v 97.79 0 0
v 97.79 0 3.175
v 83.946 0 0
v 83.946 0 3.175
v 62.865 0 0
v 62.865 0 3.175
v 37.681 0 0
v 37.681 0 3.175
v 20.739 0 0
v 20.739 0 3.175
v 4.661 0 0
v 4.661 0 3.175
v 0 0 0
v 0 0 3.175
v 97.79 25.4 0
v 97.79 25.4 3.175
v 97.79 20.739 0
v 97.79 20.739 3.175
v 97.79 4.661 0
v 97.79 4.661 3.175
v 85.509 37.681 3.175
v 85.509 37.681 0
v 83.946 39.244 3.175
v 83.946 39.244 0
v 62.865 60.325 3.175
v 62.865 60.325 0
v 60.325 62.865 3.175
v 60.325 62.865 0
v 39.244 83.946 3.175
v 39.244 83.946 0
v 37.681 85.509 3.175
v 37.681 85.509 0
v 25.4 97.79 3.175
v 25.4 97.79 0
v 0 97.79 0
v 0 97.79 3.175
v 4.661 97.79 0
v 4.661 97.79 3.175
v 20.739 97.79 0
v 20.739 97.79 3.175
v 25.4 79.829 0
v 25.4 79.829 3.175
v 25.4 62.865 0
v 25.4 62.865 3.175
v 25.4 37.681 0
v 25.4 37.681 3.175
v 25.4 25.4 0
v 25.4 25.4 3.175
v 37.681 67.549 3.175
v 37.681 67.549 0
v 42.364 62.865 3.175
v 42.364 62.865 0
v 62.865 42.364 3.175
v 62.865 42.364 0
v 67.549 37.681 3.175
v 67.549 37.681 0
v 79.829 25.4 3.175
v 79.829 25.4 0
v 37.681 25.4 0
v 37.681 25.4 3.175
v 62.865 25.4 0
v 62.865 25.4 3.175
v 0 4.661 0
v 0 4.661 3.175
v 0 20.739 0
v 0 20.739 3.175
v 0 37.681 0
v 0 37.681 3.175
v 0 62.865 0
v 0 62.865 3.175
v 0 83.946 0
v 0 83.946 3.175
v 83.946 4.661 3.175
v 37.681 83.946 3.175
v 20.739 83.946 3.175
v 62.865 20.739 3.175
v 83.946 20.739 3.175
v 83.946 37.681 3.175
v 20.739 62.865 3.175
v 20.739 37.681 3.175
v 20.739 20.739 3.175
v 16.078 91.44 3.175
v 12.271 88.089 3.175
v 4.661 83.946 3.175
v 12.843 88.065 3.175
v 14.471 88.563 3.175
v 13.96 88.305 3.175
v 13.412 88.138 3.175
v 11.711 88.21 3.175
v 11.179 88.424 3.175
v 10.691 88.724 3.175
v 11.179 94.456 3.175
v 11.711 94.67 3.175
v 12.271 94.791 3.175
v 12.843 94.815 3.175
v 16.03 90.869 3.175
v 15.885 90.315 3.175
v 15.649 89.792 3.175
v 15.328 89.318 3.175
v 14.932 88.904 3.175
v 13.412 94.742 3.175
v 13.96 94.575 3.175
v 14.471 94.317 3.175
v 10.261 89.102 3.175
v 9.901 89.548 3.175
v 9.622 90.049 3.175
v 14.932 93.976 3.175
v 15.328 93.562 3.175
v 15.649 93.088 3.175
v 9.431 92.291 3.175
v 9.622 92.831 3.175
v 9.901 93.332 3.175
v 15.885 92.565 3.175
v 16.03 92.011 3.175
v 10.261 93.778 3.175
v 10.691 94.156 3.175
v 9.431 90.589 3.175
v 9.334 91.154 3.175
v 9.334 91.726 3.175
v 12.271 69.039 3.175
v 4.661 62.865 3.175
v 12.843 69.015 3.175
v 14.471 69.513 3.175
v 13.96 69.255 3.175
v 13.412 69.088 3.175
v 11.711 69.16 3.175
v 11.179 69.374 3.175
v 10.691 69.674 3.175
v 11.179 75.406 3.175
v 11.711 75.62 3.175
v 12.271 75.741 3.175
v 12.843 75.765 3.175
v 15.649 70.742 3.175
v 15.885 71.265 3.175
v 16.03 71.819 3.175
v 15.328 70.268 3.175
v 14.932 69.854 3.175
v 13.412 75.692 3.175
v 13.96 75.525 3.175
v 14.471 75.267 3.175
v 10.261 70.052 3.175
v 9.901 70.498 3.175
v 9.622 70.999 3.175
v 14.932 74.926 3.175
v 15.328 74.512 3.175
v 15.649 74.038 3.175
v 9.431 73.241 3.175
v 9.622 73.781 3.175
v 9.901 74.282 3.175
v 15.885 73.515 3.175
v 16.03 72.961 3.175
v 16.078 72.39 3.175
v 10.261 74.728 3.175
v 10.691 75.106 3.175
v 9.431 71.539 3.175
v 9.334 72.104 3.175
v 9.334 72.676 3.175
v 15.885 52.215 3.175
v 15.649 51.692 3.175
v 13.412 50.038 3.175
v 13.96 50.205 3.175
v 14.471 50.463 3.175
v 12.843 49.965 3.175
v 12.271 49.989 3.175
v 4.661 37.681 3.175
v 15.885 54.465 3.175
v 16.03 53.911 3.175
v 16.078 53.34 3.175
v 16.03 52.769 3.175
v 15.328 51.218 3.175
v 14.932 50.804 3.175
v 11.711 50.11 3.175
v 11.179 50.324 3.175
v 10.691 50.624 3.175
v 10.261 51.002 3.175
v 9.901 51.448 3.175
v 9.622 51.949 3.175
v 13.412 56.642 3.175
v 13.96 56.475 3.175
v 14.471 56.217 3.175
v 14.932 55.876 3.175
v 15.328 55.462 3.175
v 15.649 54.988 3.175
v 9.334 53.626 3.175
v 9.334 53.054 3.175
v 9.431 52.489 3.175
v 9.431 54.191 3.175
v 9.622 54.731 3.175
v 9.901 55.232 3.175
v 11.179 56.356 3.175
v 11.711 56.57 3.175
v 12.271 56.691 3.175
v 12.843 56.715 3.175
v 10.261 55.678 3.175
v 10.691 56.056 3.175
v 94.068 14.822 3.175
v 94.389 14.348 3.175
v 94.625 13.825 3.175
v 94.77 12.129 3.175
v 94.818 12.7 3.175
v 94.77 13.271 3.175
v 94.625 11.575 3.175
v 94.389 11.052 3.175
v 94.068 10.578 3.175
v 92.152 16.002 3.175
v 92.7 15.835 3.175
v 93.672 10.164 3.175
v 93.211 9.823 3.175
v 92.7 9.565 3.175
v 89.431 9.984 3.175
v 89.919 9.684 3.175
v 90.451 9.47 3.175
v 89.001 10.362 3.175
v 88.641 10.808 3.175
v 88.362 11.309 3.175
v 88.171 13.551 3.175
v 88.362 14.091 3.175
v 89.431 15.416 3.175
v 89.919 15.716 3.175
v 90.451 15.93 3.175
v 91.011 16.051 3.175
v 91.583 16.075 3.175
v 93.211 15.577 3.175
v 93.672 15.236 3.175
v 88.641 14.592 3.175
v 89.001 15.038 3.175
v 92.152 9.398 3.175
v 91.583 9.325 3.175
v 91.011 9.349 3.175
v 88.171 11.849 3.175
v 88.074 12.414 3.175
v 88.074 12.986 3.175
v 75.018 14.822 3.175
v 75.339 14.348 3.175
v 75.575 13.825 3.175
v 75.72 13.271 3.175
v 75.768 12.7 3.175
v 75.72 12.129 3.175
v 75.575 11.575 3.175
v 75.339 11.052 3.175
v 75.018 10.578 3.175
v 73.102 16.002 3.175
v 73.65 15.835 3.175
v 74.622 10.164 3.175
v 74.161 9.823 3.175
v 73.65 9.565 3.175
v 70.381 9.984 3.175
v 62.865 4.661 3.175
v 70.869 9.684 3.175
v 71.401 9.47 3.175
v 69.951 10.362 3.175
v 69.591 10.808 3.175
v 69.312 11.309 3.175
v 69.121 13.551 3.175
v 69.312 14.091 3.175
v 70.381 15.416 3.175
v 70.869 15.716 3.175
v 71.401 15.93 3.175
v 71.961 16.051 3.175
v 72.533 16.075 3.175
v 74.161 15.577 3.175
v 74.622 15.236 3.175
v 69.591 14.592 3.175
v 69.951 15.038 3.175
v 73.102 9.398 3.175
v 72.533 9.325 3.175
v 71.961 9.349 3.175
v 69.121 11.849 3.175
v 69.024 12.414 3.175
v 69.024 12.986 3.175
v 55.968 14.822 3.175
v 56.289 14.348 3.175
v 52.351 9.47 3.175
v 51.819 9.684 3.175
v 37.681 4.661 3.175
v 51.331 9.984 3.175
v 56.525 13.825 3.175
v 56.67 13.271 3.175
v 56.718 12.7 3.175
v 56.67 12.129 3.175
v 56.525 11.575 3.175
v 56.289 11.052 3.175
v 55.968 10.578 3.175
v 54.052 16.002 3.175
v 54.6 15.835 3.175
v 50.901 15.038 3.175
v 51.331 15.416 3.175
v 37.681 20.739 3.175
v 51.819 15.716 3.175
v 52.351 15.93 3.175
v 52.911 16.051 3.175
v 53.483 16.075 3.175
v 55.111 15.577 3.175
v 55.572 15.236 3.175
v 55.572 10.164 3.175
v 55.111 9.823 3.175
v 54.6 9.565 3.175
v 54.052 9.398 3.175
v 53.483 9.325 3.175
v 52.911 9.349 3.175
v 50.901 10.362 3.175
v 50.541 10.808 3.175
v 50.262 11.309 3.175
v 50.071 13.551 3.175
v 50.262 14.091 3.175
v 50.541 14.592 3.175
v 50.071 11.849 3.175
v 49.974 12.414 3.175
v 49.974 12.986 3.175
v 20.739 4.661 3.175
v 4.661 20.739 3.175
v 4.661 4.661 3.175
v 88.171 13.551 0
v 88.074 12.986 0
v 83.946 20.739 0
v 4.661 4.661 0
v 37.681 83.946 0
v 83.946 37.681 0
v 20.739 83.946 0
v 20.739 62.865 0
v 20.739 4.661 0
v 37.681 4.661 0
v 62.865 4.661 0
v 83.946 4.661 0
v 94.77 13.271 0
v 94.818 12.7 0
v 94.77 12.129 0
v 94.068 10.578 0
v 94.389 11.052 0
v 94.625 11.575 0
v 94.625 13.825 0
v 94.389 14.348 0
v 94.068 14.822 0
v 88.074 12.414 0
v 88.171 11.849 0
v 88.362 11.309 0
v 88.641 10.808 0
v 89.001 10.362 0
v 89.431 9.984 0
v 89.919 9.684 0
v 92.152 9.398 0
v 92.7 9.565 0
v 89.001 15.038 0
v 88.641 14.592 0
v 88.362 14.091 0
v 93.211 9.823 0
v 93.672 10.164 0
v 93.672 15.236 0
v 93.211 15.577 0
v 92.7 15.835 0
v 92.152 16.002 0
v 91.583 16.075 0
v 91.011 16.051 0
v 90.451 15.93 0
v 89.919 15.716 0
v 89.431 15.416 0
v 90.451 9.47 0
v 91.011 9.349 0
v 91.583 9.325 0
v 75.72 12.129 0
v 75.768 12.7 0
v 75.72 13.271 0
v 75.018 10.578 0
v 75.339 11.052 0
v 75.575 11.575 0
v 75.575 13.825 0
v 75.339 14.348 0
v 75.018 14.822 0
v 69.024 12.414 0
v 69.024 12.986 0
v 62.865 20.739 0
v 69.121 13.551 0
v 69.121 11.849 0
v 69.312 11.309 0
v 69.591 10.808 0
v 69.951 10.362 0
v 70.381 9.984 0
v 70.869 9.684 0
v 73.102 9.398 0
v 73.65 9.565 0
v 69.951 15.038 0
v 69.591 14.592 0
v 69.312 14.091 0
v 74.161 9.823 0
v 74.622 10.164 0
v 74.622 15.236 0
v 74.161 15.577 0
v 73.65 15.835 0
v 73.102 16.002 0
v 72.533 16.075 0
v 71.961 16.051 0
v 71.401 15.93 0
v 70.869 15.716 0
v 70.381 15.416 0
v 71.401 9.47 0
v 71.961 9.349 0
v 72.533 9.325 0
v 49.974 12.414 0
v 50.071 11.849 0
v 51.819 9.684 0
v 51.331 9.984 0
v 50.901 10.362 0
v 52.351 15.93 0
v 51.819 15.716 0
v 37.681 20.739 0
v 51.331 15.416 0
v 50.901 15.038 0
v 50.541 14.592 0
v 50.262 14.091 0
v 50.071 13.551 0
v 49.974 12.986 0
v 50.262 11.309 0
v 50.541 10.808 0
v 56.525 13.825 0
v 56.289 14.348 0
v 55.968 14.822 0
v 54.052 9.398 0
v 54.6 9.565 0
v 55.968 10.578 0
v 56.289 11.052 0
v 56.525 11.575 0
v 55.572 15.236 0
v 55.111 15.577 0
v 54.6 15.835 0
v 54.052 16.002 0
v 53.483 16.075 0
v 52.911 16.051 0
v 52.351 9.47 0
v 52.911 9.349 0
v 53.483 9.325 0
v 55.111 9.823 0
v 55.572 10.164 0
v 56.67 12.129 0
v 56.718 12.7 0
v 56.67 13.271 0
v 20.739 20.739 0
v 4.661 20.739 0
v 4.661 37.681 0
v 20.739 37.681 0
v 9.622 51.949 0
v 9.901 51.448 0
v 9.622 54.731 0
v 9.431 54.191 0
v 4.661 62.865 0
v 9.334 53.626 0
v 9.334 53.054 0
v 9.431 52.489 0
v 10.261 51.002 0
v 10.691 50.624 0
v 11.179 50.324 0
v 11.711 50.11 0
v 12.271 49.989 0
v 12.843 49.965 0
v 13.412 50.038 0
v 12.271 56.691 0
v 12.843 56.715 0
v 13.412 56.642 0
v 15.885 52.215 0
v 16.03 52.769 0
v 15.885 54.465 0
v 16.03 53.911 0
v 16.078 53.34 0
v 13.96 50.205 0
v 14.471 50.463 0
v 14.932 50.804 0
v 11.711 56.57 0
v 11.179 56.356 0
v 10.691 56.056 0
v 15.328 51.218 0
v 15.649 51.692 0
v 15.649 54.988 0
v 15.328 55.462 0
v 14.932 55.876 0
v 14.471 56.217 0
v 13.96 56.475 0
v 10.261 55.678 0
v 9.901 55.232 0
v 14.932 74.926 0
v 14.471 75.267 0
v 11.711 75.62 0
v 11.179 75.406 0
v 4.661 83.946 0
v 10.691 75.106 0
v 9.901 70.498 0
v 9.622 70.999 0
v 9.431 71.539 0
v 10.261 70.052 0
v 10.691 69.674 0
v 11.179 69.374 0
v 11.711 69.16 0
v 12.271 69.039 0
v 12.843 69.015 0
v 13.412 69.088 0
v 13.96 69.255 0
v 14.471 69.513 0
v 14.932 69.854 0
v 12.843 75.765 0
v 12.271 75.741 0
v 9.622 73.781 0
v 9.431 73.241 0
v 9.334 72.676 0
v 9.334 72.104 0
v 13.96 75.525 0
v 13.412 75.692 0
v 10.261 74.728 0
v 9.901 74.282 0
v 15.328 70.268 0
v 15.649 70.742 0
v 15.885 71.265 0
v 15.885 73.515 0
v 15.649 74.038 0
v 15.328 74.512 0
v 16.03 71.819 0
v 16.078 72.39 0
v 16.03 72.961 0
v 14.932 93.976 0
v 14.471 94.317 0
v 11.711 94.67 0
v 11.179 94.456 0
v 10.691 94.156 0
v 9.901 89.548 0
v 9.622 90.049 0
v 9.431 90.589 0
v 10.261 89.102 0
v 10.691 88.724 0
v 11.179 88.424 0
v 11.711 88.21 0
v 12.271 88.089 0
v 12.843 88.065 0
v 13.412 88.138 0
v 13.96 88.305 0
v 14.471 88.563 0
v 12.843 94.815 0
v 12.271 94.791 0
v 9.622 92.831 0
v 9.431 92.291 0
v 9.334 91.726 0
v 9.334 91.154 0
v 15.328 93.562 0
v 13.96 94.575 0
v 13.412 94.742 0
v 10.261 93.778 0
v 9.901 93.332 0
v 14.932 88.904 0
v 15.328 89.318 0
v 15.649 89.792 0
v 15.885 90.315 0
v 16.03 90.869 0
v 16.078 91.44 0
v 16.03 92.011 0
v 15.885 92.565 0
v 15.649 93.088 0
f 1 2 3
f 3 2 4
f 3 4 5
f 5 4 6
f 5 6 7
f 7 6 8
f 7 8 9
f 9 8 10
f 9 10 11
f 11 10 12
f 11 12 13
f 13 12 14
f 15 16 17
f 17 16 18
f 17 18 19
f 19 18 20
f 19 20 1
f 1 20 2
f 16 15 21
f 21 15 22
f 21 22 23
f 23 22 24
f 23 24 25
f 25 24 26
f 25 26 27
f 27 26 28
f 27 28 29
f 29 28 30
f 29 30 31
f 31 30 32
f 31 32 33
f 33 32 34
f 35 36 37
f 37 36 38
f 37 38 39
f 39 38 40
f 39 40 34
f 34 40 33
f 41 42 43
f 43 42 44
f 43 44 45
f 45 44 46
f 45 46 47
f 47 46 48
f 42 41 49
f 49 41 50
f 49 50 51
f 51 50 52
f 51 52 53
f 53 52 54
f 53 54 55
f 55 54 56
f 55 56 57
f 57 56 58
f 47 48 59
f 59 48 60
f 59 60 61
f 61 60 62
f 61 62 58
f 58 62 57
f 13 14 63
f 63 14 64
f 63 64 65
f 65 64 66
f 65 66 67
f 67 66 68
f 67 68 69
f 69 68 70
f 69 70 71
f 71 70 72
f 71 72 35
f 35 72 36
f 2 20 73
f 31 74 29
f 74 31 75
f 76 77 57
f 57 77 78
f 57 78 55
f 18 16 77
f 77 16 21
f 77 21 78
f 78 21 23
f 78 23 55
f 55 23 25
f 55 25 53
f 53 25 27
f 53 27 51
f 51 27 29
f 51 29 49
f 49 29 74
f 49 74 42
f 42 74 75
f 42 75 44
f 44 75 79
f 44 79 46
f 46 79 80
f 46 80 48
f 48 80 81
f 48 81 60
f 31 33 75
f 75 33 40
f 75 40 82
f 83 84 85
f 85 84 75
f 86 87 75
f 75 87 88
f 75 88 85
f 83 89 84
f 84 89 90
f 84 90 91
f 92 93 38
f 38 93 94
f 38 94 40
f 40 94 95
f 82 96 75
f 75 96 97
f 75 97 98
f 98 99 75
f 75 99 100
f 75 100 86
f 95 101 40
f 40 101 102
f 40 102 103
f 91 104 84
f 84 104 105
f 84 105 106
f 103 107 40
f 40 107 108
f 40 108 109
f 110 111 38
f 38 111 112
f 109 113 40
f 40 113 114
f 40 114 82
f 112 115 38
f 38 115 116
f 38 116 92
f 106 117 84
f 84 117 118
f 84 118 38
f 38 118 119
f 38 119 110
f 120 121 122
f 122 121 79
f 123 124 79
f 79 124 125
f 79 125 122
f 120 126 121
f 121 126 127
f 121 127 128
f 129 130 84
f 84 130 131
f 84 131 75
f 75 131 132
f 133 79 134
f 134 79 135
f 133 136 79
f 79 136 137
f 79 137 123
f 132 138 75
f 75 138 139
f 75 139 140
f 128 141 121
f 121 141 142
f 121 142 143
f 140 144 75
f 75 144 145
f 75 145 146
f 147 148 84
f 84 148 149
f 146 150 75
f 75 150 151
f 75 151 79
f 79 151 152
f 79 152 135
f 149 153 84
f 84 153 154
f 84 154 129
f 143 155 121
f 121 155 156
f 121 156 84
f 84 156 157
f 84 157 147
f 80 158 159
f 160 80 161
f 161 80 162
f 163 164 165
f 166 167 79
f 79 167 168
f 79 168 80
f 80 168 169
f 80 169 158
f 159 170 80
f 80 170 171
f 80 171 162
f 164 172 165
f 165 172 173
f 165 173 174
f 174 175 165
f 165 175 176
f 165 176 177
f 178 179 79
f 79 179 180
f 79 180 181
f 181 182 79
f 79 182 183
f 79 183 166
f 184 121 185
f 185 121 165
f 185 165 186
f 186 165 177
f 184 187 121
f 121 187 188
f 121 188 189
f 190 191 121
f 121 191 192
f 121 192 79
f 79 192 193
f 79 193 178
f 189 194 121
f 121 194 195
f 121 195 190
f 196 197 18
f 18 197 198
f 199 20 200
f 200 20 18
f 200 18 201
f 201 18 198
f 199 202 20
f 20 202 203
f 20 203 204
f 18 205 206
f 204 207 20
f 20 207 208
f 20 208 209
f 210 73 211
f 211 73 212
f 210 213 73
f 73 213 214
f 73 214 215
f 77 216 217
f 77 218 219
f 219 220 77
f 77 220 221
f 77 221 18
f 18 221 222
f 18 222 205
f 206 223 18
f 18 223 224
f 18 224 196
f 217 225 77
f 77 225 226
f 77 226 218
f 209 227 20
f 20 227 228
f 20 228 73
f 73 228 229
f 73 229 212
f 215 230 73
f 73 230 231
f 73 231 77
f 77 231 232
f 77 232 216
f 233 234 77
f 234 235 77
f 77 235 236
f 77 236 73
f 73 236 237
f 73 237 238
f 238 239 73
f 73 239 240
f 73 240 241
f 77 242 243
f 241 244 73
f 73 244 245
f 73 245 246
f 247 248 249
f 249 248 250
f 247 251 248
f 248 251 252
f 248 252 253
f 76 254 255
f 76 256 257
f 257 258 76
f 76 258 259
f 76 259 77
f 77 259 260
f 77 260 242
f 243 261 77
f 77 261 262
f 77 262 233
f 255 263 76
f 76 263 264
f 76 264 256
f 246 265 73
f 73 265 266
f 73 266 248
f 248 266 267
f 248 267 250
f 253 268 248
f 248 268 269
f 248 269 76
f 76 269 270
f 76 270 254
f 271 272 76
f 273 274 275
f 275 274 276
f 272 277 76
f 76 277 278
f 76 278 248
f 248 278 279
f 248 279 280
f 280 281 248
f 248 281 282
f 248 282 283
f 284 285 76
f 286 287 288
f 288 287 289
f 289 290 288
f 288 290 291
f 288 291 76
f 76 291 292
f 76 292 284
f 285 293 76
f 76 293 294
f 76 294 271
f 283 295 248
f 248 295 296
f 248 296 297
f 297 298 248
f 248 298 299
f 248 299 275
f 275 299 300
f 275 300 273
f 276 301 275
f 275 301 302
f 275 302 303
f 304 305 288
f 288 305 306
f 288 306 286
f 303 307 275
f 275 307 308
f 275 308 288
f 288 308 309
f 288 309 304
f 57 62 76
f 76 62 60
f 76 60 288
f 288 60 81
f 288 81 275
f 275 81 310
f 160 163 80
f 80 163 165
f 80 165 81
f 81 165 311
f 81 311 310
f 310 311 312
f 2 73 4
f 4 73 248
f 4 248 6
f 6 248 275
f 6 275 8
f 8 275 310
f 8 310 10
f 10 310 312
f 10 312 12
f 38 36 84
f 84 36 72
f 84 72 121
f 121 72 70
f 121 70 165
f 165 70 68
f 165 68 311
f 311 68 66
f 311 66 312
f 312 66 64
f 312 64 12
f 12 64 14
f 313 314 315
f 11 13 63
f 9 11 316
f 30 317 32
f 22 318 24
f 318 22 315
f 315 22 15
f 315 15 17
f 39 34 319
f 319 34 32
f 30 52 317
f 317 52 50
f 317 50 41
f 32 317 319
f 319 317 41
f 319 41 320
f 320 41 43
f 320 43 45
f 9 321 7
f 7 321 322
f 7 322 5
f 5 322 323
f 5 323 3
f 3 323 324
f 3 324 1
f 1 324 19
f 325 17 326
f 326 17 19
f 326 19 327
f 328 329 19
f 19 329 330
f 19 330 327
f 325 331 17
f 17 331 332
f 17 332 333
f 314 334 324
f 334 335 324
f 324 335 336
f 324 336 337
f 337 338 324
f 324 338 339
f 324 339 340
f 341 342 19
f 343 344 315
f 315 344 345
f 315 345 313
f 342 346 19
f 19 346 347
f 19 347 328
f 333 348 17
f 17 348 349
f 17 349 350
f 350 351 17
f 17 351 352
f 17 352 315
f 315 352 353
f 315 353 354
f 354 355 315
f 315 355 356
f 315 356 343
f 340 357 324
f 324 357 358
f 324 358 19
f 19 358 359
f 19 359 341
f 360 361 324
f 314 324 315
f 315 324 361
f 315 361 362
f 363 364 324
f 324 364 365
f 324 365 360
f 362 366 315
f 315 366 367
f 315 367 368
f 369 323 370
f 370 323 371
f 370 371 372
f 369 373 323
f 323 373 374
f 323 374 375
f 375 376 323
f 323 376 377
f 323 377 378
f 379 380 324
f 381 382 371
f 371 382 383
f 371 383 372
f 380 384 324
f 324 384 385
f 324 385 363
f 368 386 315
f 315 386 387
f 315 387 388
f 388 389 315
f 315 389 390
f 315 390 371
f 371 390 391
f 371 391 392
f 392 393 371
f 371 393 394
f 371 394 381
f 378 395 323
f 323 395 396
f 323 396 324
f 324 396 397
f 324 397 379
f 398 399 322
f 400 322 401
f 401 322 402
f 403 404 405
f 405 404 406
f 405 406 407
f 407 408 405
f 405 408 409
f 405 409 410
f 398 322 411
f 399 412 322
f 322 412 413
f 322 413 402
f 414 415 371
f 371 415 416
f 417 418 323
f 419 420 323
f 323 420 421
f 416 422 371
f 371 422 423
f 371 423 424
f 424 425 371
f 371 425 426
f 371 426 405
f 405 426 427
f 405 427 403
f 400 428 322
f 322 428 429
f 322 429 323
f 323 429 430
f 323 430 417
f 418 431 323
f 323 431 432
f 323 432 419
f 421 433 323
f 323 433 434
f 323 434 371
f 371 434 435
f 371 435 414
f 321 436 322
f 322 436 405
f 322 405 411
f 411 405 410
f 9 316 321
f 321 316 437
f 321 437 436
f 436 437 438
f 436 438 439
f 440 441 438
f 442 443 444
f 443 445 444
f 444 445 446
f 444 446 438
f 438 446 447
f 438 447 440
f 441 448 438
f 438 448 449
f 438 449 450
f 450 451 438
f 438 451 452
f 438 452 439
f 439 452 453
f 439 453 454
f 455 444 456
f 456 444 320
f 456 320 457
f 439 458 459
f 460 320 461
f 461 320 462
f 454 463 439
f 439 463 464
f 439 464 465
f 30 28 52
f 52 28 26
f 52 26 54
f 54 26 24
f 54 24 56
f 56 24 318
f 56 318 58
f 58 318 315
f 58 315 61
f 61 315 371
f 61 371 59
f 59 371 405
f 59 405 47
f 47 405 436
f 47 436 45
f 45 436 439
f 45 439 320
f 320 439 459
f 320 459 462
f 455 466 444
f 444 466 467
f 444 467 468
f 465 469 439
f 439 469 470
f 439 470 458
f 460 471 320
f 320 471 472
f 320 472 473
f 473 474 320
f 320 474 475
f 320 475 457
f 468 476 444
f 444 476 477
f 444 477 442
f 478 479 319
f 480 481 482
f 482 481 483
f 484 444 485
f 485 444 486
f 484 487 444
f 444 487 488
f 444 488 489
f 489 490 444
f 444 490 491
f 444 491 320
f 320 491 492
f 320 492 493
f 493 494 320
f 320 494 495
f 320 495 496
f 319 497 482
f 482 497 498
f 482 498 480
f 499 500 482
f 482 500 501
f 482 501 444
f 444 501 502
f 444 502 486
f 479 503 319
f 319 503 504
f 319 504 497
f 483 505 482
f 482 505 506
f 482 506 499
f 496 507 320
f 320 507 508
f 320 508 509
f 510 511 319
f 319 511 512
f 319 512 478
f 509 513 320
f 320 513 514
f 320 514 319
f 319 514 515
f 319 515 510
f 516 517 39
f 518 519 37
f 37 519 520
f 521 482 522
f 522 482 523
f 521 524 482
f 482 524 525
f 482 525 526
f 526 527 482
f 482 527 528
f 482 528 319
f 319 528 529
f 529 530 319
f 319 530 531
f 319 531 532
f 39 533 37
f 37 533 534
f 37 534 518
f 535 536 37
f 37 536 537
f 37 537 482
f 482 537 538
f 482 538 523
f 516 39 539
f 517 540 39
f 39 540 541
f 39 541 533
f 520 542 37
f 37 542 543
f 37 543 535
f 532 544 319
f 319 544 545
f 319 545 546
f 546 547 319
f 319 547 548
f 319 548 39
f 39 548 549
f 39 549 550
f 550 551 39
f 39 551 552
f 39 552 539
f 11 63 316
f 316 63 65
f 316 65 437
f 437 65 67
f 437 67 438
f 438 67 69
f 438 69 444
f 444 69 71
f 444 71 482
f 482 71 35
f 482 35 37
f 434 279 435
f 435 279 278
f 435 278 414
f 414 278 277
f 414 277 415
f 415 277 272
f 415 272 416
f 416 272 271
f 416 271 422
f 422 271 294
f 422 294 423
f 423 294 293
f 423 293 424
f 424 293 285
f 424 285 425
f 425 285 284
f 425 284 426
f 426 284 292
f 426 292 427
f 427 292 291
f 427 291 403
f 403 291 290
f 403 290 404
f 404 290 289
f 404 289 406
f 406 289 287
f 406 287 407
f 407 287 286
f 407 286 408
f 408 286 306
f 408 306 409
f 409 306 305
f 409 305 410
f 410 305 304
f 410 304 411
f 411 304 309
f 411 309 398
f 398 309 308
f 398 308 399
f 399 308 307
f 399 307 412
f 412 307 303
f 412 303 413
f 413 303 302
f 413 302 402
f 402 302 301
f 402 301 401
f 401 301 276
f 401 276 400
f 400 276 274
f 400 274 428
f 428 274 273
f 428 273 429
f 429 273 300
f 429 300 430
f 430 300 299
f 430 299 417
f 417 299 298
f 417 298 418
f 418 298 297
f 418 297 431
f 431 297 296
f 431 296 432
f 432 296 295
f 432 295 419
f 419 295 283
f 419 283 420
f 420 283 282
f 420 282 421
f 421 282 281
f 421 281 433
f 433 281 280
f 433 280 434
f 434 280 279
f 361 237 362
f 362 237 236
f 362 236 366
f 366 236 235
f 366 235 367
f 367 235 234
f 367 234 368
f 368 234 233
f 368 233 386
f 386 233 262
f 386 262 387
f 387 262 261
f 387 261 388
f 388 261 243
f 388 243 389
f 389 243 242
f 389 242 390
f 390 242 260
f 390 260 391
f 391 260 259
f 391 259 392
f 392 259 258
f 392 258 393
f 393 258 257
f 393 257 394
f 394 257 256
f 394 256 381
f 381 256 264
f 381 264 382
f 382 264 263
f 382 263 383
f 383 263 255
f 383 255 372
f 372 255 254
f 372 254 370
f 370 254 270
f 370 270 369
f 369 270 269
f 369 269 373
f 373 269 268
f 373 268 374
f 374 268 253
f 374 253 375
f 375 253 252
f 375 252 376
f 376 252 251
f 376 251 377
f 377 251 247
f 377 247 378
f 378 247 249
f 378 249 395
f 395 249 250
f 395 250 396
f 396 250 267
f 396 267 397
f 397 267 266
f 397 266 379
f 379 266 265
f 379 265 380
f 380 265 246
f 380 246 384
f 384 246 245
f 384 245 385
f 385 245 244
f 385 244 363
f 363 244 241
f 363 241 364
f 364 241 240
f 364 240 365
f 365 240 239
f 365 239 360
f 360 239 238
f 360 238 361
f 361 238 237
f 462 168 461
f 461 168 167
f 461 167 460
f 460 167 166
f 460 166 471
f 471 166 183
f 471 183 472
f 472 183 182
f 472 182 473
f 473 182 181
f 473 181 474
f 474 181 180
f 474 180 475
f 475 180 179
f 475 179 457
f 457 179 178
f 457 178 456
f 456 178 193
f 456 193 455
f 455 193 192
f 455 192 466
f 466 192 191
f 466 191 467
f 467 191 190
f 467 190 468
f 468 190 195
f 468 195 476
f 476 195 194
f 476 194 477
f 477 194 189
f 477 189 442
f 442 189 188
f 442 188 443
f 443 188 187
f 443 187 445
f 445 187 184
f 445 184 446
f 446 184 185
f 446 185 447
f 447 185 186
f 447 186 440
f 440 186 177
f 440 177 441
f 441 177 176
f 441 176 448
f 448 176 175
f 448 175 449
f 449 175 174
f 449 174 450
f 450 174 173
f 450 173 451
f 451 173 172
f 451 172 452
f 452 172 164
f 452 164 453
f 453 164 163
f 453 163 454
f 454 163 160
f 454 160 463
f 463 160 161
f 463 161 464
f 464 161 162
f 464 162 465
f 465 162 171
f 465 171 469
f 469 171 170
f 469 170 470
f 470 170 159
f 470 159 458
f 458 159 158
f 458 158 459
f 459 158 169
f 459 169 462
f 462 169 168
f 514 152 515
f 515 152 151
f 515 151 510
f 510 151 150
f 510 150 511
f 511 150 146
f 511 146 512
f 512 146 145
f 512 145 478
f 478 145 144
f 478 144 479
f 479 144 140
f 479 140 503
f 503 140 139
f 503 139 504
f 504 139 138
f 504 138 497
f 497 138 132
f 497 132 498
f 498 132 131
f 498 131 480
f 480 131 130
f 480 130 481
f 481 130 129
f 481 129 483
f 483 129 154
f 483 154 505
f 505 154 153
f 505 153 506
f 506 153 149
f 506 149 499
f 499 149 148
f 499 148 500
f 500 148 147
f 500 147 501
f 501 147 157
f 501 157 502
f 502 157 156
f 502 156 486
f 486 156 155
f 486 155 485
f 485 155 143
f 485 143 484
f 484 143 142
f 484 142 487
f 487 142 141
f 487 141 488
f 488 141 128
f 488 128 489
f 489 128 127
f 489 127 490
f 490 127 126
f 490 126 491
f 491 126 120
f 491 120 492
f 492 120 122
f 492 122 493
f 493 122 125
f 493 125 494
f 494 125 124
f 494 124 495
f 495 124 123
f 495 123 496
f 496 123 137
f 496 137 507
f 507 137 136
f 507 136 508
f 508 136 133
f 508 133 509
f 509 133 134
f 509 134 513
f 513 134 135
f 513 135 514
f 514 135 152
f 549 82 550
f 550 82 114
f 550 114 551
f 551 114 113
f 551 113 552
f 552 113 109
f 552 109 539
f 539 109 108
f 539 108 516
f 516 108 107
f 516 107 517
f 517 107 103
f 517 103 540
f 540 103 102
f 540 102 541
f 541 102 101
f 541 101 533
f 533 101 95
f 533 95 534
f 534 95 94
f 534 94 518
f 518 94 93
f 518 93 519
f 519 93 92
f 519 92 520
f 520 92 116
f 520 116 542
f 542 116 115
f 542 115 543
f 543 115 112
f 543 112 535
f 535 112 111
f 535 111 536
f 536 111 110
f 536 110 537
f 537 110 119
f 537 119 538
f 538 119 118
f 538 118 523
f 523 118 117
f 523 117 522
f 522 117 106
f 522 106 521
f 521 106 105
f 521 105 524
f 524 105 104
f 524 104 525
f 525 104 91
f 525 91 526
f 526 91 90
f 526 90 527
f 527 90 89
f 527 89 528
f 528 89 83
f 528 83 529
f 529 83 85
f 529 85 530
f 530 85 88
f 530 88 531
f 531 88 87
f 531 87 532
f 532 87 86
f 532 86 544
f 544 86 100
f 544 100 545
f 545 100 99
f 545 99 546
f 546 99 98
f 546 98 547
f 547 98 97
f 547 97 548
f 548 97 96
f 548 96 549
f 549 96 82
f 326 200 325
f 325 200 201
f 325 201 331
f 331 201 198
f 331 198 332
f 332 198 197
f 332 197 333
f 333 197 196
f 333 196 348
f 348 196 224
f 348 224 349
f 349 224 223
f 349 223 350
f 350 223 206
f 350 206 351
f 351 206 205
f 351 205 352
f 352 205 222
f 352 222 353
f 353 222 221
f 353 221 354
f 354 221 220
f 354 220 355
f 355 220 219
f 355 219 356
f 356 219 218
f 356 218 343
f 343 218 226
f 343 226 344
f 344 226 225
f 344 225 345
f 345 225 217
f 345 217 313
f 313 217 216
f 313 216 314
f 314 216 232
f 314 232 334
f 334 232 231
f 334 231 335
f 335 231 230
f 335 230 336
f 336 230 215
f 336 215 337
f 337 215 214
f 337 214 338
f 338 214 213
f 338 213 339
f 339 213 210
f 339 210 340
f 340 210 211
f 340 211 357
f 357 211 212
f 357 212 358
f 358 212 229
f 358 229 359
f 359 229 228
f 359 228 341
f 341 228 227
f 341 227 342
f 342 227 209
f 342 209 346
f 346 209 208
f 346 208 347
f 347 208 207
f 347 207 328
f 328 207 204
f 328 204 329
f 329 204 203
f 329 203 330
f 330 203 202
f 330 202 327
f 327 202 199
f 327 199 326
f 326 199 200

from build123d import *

# Parameters (mm, degrees)
BOSS_EXTRUDE1_DEPTH = 3.175
SKETCH2_R           = 3.175
CUT_EXTRUDE1_DEPTH  = 139.332385308


with BuildPart() as part:
    # Sketch1 → Boss-Extrude1 (new body)
    with BuildSketch(Plane.XY):
        Polygon((25.4, 97.79), (97.79, 25.4), (97.79, 0), (0, 0), (0, 97.79), align=None)
        Polygon((25.4, 25.4), (25.4, 79.829487758), (79.829487758, 25.4), align=None, mode=Mode.SUBTRACT)
    extrude(amount=BOSS_EXTRUDE1_DEPTH)

    # Sketch2 → Cut-Extrude1 (cut, through all)
    with BuildSketch(Plane.XY.offset(3.175)):
        with Locations((53.34, 12.7)):
            Circle(SKETCH2_R)
        with Locations((72.39, 12.7)):
            Circle(SKETCH2_R)
        with Locations((12.7, 53.34)):
            Circle(SKETCH2_R)
        with Locations((12.7, 72.39)):
            Circle(SKETCH2_R)
        with Locations((12.7, 91.44)):
            Circle(SKETCH2_R)
        with Locations((91.44, 12.7)):
            Circle(SKETCH2_R)
    extrude(amount=-CUT_EXTRUDE1_DEPTH, mode=Mode.SUBTRACT)


solid = part.part
